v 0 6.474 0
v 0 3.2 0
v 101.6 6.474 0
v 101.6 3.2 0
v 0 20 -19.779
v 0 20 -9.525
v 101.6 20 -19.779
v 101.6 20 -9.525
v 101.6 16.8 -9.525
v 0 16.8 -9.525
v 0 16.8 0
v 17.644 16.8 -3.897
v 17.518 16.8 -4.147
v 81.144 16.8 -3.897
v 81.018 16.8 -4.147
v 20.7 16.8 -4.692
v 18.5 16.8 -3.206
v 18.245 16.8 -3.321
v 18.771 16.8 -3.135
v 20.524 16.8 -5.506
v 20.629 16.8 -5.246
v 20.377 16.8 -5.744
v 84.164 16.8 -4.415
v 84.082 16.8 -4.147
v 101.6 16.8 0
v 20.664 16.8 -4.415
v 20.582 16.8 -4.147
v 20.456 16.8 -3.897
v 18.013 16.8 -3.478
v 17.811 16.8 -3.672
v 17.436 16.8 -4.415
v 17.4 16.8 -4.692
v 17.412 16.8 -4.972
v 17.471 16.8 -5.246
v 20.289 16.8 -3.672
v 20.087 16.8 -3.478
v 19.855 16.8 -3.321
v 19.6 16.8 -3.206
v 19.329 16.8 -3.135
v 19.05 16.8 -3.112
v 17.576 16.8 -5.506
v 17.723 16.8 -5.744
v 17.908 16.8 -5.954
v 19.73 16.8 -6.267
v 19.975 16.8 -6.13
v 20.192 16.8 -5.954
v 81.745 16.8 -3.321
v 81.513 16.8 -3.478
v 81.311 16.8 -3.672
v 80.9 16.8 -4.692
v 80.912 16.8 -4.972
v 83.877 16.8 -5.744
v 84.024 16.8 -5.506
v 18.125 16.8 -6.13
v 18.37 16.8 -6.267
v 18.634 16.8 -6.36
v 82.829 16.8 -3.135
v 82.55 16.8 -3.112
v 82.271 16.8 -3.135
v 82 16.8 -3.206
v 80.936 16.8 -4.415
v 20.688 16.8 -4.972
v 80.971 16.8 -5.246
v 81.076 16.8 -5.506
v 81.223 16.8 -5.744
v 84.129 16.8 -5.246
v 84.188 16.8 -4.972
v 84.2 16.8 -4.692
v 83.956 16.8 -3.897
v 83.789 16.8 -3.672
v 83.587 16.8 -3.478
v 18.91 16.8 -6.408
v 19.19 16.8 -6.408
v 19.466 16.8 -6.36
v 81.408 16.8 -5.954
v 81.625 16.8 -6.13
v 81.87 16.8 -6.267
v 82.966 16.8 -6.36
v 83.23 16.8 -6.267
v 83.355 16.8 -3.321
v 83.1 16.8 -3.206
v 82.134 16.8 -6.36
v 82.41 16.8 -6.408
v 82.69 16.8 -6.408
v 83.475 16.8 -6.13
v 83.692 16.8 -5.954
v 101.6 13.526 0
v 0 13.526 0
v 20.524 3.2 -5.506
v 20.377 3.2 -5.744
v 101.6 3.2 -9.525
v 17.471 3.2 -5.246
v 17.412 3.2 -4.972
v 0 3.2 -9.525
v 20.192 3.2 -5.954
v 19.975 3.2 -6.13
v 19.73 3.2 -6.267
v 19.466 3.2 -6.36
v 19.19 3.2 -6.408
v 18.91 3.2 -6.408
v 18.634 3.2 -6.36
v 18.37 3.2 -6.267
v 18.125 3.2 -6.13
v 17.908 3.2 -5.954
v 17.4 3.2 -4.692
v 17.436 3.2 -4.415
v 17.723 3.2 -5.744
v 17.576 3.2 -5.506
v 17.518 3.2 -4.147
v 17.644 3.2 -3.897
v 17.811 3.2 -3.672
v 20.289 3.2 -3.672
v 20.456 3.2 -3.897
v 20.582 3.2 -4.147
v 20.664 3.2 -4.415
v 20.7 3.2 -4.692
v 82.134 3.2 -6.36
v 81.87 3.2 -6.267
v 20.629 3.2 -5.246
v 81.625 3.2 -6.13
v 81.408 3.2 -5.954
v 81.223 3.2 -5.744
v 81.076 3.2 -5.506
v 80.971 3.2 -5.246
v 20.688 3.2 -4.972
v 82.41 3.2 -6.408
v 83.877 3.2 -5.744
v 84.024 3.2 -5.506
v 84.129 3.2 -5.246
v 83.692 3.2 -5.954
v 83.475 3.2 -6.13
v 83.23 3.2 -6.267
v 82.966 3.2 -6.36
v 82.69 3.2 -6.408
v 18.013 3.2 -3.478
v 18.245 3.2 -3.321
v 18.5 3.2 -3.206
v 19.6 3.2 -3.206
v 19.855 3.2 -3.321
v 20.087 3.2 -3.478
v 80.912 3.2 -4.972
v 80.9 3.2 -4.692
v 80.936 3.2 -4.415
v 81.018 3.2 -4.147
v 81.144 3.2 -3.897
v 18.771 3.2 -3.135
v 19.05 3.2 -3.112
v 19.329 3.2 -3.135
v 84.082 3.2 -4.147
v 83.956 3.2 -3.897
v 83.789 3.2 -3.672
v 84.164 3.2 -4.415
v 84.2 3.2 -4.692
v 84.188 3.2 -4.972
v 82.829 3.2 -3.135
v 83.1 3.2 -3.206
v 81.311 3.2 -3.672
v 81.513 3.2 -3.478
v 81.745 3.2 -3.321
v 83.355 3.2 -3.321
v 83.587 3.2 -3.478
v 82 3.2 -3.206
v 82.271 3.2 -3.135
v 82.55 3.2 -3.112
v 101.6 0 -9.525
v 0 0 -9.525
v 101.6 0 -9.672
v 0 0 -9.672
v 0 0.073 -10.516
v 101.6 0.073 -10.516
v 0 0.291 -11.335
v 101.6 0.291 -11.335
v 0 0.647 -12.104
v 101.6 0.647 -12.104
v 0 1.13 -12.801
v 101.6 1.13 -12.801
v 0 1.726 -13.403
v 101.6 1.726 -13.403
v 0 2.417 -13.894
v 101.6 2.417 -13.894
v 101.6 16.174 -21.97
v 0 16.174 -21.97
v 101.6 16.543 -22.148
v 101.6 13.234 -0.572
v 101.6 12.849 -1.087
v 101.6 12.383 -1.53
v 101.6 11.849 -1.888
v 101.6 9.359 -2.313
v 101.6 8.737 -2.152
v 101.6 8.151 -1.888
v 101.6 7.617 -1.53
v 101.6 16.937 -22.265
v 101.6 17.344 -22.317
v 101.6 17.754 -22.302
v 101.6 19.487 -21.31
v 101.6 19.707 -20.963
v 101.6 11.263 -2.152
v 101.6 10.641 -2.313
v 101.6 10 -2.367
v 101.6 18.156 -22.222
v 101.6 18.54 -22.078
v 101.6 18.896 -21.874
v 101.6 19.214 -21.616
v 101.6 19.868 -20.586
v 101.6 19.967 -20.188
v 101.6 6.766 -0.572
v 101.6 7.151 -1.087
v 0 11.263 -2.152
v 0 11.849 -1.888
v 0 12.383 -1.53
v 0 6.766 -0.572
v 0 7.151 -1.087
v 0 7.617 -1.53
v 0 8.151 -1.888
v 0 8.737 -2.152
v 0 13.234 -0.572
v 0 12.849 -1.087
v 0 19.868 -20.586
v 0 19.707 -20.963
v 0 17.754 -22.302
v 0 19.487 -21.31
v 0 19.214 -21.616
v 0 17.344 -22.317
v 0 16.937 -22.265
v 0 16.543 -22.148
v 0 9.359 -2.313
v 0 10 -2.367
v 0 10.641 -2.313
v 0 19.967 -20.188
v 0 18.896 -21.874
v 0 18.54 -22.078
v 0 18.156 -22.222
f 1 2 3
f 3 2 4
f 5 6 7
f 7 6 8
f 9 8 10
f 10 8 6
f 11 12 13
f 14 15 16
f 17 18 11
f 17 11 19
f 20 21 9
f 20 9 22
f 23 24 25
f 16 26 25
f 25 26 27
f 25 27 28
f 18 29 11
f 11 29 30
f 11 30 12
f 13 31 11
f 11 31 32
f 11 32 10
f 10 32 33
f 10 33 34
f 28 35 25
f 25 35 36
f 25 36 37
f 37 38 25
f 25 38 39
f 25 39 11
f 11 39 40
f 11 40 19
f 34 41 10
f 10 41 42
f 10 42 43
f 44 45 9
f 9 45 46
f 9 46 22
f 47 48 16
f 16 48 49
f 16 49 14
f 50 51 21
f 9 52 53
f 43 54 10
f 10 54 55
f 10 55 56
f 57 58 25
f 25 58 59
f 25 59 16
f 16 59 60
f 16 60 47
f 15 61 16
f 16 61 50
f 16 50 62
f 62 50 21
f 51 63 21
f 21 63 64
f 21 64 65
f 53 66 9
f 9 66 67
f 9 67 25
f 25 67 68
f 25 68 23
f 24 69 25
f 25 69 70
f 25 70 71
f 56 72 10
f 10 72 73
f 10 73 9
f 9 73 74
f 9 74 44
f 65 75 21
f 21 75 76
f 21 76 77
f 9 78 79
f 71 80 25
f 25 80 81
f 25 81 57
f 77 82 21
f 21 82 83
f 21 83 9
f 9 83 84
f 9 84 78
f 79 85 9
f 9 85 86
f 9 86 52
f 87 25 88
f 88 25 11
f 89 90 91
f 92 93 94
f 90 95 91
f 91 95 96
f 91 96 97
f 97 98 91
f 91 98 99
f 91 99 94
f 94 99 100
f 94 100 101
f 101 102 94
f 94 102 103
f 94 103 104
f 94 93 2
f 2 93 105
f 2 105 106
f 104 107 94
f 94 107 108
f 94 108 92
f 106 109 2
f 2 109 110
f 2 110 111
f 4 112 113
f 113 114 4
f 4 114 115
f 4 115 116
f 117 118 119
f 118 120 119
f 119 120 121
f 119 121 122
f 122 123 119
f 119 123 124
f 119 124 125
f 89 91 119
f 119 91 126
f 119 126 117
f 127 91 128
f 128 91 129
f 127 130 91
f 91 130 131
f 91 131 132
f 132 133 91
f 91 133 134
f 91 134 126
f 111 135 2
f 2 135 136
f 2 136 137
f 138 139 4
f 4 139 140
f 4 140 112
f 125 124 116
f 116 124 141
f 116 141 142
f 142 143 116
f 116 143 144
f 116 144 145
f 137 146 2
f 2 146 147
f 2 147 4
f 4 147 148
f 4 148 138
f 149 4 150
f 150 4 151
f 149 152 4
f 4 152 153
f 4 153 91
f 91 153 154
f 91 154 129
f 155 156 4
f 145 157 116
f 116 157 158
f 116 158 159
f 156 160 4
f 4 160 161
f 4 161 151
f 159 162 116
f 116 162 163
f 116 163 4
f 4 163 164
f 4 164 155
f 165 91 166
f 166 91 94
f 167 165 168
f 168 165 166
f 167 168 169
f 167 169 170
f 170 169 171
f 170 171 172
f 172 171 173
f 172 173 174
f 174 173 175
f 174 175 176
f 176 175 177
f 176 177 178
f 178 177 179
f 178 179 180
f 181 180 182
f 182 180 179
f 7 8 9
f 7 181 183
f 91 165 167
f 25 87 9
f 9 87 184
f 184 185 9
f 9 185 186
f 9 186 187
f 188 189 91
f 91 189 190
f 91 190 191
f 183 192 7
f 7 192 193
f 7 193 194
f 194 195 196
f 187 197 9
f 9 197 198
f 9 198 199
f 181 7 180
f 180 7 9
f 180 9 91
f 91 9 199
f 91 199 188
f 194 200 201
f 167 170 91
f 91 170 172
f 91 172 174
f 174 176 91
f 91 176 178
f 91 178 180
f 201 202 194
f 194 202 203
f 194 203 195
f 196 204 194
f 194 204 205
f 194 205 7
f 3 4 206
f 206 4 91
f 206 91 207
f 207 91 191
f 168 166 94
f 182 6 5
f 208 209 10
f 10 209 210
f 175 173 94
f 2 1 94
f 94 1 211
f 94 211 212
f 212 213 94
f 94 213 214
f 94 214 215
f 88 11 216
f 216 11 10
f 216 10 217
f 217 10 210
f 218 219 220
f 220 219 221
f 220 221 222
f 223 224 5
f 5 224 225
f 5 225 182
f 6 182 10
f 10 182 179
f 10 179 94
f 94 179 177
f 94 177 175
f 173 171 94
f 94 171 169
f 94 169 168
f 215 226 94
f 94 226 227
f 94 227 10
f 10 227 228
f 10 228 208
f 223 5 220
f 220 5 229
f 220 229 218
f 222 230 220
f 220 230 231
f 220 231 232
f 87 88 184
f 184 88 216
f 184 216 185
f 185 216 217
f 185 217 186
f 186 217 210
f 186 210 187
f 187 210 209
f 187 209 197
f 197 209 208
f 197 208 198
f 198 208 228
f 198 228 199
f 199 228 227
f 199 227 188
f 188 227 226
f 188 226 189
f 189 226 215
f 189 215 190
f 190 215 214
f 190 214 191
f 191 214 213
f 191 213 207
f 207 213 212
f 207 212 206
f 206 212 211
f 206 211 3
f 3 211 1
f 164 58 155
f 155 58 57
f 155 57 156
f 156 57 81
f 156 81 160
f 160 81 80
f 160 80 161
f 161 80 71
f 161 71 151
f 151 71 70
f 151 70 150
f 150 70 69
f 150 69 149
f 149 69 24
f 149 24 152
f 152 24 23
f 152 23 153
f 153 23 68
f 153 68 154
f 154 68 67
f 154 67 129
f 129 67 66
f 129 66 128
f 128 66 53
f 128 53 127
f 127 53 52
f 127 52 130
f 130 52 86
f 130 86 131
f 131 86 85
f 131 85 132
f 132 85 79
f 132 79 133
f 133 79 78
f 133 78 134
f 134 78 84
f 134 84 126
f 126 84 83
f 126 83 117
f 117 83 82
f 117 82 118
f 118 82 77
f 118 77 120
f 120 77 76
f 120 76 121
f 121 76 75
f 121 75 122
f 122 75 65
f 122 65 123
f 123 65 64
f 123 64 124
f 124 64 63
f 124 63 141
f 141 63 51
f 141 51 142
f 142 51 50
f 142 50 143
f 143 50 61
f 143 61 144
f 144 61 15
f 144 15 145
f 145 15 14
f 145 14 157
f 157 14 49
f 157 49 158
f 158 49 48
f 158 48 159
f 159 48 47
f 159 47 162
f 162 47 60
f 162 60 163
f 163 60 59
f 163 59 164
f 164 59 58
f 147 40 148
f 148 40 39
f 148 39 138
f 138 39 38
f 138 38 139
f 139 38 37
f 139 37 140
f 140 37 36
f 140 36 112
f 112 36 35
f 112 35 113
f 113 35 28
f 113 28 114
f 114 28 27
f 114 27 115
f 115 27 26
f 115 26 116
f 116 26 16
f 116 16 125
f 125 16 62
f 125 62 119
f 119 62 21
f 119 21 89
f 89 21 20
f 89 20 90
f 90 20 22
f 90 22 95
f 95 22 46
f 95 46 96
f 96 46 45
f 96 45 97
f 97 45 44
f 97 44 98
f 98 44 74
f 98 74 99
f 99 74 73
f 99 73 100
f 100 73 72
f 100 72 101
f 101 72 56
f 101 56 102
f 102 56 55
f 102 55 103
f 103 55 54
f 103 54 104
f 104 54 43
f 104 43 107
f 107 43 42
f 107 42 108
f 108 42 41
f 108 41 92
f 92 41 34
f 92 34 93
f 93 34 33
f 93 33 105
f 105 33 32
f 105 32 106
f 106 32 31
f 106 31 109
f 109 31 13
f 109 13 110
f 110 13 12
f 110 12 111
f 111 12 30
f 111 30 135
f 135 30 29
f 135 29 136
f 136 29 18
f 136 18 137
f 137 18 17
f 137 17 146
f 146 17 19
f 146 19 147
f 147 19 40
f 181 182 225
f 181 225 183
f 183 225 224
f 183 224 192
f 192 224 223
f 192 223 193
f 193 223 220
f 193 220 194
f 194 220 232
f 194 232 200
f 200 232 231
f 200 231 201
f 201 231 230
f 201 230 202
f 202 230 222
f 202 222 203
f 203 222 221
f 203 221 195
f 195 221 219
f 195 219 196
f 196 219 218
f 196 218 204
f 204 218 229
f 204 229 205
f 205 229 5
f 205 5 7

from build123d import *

# Parameters (mm, degrees)
BOSS_EXTRUDE1_DEPTH = 101.6
CUT_EXTRUDE2_DEPTH  = 101.6
SKETCH5_R           = 1.651
CUT_EXTRUDE3_DEPTH  = 13.5992
FILLET1_R           = 2.54


with BuildPart() as part:
    # Sketch1 → Boss-Extrude1 (new body)
    with BuildSketch(Plane(origin=(0, 0, 0), x_dir=(0, 0, -1), z_dir=(1, 0, 0))):
        with BuildLine():
            Line((0, 16.7996), (0, 3.2004))
            Line((0, 3.2004), (9.525, 3.2004))
            Line((9.525, 3.2004), (9.525, 0))
            Line((9.525, 0), (9.672001208, 0))
            ThreePointArc((9.672001208, 0), (12.1043061, 0.647018058), (13.89365381, 2.417039025))
            Line((13.89365381, 2.417039025), (24.215623453, 20))
            Line((24.215623453, 20), (9.525, 20))
            Line((9.525, 20), (9.525, 16.7996))
            Line((9.525, 16.7996), (0, 16.7996))
        make_face()
    extrude(amount=BOSS_EXTRUDE1_DEPTH)

    # Sketch4 → Cut-Extrude2 (cut)
    with BuildSketch(Plane.ZY):
        with BuildLine():
            Line((0, 13.526281186), (0, 6.473718814))
            ThreePointArc((0, 6.473718814), (-2.36728, 10), (0, 13.526281186))
        make_face()
    extrude(amount=-CUT_EXTRUDE2_DEPTH, mode=Mode.SUBTRACT)

    # Sketch5 → Cut-Extrude3 (cut)
    with BuildSketch(Plane(origin=(0, 16.7996, 0), x_dir=(1, 0, 0), z_dir=(0, 1, 0))):
        with Locations((19.05, 4.7625)):
            Circle(SKETCH5_R)
        with Locations((82.55, 4.7625)):
            Circle(SKETCH5_R)
    extrude(amount=-CUT_EXTRUDE3_DEPTH, mode=Mode.SUBTRACT)

    # Fillet1
    fillet1_edges = [part.edges().sort_by_distance(p)[0] for p in [
        (50.8, 20, -24.215623453),
    ]]
    fillet(fillet1_edges, radius=FILLET1_R)


solid = part.part
